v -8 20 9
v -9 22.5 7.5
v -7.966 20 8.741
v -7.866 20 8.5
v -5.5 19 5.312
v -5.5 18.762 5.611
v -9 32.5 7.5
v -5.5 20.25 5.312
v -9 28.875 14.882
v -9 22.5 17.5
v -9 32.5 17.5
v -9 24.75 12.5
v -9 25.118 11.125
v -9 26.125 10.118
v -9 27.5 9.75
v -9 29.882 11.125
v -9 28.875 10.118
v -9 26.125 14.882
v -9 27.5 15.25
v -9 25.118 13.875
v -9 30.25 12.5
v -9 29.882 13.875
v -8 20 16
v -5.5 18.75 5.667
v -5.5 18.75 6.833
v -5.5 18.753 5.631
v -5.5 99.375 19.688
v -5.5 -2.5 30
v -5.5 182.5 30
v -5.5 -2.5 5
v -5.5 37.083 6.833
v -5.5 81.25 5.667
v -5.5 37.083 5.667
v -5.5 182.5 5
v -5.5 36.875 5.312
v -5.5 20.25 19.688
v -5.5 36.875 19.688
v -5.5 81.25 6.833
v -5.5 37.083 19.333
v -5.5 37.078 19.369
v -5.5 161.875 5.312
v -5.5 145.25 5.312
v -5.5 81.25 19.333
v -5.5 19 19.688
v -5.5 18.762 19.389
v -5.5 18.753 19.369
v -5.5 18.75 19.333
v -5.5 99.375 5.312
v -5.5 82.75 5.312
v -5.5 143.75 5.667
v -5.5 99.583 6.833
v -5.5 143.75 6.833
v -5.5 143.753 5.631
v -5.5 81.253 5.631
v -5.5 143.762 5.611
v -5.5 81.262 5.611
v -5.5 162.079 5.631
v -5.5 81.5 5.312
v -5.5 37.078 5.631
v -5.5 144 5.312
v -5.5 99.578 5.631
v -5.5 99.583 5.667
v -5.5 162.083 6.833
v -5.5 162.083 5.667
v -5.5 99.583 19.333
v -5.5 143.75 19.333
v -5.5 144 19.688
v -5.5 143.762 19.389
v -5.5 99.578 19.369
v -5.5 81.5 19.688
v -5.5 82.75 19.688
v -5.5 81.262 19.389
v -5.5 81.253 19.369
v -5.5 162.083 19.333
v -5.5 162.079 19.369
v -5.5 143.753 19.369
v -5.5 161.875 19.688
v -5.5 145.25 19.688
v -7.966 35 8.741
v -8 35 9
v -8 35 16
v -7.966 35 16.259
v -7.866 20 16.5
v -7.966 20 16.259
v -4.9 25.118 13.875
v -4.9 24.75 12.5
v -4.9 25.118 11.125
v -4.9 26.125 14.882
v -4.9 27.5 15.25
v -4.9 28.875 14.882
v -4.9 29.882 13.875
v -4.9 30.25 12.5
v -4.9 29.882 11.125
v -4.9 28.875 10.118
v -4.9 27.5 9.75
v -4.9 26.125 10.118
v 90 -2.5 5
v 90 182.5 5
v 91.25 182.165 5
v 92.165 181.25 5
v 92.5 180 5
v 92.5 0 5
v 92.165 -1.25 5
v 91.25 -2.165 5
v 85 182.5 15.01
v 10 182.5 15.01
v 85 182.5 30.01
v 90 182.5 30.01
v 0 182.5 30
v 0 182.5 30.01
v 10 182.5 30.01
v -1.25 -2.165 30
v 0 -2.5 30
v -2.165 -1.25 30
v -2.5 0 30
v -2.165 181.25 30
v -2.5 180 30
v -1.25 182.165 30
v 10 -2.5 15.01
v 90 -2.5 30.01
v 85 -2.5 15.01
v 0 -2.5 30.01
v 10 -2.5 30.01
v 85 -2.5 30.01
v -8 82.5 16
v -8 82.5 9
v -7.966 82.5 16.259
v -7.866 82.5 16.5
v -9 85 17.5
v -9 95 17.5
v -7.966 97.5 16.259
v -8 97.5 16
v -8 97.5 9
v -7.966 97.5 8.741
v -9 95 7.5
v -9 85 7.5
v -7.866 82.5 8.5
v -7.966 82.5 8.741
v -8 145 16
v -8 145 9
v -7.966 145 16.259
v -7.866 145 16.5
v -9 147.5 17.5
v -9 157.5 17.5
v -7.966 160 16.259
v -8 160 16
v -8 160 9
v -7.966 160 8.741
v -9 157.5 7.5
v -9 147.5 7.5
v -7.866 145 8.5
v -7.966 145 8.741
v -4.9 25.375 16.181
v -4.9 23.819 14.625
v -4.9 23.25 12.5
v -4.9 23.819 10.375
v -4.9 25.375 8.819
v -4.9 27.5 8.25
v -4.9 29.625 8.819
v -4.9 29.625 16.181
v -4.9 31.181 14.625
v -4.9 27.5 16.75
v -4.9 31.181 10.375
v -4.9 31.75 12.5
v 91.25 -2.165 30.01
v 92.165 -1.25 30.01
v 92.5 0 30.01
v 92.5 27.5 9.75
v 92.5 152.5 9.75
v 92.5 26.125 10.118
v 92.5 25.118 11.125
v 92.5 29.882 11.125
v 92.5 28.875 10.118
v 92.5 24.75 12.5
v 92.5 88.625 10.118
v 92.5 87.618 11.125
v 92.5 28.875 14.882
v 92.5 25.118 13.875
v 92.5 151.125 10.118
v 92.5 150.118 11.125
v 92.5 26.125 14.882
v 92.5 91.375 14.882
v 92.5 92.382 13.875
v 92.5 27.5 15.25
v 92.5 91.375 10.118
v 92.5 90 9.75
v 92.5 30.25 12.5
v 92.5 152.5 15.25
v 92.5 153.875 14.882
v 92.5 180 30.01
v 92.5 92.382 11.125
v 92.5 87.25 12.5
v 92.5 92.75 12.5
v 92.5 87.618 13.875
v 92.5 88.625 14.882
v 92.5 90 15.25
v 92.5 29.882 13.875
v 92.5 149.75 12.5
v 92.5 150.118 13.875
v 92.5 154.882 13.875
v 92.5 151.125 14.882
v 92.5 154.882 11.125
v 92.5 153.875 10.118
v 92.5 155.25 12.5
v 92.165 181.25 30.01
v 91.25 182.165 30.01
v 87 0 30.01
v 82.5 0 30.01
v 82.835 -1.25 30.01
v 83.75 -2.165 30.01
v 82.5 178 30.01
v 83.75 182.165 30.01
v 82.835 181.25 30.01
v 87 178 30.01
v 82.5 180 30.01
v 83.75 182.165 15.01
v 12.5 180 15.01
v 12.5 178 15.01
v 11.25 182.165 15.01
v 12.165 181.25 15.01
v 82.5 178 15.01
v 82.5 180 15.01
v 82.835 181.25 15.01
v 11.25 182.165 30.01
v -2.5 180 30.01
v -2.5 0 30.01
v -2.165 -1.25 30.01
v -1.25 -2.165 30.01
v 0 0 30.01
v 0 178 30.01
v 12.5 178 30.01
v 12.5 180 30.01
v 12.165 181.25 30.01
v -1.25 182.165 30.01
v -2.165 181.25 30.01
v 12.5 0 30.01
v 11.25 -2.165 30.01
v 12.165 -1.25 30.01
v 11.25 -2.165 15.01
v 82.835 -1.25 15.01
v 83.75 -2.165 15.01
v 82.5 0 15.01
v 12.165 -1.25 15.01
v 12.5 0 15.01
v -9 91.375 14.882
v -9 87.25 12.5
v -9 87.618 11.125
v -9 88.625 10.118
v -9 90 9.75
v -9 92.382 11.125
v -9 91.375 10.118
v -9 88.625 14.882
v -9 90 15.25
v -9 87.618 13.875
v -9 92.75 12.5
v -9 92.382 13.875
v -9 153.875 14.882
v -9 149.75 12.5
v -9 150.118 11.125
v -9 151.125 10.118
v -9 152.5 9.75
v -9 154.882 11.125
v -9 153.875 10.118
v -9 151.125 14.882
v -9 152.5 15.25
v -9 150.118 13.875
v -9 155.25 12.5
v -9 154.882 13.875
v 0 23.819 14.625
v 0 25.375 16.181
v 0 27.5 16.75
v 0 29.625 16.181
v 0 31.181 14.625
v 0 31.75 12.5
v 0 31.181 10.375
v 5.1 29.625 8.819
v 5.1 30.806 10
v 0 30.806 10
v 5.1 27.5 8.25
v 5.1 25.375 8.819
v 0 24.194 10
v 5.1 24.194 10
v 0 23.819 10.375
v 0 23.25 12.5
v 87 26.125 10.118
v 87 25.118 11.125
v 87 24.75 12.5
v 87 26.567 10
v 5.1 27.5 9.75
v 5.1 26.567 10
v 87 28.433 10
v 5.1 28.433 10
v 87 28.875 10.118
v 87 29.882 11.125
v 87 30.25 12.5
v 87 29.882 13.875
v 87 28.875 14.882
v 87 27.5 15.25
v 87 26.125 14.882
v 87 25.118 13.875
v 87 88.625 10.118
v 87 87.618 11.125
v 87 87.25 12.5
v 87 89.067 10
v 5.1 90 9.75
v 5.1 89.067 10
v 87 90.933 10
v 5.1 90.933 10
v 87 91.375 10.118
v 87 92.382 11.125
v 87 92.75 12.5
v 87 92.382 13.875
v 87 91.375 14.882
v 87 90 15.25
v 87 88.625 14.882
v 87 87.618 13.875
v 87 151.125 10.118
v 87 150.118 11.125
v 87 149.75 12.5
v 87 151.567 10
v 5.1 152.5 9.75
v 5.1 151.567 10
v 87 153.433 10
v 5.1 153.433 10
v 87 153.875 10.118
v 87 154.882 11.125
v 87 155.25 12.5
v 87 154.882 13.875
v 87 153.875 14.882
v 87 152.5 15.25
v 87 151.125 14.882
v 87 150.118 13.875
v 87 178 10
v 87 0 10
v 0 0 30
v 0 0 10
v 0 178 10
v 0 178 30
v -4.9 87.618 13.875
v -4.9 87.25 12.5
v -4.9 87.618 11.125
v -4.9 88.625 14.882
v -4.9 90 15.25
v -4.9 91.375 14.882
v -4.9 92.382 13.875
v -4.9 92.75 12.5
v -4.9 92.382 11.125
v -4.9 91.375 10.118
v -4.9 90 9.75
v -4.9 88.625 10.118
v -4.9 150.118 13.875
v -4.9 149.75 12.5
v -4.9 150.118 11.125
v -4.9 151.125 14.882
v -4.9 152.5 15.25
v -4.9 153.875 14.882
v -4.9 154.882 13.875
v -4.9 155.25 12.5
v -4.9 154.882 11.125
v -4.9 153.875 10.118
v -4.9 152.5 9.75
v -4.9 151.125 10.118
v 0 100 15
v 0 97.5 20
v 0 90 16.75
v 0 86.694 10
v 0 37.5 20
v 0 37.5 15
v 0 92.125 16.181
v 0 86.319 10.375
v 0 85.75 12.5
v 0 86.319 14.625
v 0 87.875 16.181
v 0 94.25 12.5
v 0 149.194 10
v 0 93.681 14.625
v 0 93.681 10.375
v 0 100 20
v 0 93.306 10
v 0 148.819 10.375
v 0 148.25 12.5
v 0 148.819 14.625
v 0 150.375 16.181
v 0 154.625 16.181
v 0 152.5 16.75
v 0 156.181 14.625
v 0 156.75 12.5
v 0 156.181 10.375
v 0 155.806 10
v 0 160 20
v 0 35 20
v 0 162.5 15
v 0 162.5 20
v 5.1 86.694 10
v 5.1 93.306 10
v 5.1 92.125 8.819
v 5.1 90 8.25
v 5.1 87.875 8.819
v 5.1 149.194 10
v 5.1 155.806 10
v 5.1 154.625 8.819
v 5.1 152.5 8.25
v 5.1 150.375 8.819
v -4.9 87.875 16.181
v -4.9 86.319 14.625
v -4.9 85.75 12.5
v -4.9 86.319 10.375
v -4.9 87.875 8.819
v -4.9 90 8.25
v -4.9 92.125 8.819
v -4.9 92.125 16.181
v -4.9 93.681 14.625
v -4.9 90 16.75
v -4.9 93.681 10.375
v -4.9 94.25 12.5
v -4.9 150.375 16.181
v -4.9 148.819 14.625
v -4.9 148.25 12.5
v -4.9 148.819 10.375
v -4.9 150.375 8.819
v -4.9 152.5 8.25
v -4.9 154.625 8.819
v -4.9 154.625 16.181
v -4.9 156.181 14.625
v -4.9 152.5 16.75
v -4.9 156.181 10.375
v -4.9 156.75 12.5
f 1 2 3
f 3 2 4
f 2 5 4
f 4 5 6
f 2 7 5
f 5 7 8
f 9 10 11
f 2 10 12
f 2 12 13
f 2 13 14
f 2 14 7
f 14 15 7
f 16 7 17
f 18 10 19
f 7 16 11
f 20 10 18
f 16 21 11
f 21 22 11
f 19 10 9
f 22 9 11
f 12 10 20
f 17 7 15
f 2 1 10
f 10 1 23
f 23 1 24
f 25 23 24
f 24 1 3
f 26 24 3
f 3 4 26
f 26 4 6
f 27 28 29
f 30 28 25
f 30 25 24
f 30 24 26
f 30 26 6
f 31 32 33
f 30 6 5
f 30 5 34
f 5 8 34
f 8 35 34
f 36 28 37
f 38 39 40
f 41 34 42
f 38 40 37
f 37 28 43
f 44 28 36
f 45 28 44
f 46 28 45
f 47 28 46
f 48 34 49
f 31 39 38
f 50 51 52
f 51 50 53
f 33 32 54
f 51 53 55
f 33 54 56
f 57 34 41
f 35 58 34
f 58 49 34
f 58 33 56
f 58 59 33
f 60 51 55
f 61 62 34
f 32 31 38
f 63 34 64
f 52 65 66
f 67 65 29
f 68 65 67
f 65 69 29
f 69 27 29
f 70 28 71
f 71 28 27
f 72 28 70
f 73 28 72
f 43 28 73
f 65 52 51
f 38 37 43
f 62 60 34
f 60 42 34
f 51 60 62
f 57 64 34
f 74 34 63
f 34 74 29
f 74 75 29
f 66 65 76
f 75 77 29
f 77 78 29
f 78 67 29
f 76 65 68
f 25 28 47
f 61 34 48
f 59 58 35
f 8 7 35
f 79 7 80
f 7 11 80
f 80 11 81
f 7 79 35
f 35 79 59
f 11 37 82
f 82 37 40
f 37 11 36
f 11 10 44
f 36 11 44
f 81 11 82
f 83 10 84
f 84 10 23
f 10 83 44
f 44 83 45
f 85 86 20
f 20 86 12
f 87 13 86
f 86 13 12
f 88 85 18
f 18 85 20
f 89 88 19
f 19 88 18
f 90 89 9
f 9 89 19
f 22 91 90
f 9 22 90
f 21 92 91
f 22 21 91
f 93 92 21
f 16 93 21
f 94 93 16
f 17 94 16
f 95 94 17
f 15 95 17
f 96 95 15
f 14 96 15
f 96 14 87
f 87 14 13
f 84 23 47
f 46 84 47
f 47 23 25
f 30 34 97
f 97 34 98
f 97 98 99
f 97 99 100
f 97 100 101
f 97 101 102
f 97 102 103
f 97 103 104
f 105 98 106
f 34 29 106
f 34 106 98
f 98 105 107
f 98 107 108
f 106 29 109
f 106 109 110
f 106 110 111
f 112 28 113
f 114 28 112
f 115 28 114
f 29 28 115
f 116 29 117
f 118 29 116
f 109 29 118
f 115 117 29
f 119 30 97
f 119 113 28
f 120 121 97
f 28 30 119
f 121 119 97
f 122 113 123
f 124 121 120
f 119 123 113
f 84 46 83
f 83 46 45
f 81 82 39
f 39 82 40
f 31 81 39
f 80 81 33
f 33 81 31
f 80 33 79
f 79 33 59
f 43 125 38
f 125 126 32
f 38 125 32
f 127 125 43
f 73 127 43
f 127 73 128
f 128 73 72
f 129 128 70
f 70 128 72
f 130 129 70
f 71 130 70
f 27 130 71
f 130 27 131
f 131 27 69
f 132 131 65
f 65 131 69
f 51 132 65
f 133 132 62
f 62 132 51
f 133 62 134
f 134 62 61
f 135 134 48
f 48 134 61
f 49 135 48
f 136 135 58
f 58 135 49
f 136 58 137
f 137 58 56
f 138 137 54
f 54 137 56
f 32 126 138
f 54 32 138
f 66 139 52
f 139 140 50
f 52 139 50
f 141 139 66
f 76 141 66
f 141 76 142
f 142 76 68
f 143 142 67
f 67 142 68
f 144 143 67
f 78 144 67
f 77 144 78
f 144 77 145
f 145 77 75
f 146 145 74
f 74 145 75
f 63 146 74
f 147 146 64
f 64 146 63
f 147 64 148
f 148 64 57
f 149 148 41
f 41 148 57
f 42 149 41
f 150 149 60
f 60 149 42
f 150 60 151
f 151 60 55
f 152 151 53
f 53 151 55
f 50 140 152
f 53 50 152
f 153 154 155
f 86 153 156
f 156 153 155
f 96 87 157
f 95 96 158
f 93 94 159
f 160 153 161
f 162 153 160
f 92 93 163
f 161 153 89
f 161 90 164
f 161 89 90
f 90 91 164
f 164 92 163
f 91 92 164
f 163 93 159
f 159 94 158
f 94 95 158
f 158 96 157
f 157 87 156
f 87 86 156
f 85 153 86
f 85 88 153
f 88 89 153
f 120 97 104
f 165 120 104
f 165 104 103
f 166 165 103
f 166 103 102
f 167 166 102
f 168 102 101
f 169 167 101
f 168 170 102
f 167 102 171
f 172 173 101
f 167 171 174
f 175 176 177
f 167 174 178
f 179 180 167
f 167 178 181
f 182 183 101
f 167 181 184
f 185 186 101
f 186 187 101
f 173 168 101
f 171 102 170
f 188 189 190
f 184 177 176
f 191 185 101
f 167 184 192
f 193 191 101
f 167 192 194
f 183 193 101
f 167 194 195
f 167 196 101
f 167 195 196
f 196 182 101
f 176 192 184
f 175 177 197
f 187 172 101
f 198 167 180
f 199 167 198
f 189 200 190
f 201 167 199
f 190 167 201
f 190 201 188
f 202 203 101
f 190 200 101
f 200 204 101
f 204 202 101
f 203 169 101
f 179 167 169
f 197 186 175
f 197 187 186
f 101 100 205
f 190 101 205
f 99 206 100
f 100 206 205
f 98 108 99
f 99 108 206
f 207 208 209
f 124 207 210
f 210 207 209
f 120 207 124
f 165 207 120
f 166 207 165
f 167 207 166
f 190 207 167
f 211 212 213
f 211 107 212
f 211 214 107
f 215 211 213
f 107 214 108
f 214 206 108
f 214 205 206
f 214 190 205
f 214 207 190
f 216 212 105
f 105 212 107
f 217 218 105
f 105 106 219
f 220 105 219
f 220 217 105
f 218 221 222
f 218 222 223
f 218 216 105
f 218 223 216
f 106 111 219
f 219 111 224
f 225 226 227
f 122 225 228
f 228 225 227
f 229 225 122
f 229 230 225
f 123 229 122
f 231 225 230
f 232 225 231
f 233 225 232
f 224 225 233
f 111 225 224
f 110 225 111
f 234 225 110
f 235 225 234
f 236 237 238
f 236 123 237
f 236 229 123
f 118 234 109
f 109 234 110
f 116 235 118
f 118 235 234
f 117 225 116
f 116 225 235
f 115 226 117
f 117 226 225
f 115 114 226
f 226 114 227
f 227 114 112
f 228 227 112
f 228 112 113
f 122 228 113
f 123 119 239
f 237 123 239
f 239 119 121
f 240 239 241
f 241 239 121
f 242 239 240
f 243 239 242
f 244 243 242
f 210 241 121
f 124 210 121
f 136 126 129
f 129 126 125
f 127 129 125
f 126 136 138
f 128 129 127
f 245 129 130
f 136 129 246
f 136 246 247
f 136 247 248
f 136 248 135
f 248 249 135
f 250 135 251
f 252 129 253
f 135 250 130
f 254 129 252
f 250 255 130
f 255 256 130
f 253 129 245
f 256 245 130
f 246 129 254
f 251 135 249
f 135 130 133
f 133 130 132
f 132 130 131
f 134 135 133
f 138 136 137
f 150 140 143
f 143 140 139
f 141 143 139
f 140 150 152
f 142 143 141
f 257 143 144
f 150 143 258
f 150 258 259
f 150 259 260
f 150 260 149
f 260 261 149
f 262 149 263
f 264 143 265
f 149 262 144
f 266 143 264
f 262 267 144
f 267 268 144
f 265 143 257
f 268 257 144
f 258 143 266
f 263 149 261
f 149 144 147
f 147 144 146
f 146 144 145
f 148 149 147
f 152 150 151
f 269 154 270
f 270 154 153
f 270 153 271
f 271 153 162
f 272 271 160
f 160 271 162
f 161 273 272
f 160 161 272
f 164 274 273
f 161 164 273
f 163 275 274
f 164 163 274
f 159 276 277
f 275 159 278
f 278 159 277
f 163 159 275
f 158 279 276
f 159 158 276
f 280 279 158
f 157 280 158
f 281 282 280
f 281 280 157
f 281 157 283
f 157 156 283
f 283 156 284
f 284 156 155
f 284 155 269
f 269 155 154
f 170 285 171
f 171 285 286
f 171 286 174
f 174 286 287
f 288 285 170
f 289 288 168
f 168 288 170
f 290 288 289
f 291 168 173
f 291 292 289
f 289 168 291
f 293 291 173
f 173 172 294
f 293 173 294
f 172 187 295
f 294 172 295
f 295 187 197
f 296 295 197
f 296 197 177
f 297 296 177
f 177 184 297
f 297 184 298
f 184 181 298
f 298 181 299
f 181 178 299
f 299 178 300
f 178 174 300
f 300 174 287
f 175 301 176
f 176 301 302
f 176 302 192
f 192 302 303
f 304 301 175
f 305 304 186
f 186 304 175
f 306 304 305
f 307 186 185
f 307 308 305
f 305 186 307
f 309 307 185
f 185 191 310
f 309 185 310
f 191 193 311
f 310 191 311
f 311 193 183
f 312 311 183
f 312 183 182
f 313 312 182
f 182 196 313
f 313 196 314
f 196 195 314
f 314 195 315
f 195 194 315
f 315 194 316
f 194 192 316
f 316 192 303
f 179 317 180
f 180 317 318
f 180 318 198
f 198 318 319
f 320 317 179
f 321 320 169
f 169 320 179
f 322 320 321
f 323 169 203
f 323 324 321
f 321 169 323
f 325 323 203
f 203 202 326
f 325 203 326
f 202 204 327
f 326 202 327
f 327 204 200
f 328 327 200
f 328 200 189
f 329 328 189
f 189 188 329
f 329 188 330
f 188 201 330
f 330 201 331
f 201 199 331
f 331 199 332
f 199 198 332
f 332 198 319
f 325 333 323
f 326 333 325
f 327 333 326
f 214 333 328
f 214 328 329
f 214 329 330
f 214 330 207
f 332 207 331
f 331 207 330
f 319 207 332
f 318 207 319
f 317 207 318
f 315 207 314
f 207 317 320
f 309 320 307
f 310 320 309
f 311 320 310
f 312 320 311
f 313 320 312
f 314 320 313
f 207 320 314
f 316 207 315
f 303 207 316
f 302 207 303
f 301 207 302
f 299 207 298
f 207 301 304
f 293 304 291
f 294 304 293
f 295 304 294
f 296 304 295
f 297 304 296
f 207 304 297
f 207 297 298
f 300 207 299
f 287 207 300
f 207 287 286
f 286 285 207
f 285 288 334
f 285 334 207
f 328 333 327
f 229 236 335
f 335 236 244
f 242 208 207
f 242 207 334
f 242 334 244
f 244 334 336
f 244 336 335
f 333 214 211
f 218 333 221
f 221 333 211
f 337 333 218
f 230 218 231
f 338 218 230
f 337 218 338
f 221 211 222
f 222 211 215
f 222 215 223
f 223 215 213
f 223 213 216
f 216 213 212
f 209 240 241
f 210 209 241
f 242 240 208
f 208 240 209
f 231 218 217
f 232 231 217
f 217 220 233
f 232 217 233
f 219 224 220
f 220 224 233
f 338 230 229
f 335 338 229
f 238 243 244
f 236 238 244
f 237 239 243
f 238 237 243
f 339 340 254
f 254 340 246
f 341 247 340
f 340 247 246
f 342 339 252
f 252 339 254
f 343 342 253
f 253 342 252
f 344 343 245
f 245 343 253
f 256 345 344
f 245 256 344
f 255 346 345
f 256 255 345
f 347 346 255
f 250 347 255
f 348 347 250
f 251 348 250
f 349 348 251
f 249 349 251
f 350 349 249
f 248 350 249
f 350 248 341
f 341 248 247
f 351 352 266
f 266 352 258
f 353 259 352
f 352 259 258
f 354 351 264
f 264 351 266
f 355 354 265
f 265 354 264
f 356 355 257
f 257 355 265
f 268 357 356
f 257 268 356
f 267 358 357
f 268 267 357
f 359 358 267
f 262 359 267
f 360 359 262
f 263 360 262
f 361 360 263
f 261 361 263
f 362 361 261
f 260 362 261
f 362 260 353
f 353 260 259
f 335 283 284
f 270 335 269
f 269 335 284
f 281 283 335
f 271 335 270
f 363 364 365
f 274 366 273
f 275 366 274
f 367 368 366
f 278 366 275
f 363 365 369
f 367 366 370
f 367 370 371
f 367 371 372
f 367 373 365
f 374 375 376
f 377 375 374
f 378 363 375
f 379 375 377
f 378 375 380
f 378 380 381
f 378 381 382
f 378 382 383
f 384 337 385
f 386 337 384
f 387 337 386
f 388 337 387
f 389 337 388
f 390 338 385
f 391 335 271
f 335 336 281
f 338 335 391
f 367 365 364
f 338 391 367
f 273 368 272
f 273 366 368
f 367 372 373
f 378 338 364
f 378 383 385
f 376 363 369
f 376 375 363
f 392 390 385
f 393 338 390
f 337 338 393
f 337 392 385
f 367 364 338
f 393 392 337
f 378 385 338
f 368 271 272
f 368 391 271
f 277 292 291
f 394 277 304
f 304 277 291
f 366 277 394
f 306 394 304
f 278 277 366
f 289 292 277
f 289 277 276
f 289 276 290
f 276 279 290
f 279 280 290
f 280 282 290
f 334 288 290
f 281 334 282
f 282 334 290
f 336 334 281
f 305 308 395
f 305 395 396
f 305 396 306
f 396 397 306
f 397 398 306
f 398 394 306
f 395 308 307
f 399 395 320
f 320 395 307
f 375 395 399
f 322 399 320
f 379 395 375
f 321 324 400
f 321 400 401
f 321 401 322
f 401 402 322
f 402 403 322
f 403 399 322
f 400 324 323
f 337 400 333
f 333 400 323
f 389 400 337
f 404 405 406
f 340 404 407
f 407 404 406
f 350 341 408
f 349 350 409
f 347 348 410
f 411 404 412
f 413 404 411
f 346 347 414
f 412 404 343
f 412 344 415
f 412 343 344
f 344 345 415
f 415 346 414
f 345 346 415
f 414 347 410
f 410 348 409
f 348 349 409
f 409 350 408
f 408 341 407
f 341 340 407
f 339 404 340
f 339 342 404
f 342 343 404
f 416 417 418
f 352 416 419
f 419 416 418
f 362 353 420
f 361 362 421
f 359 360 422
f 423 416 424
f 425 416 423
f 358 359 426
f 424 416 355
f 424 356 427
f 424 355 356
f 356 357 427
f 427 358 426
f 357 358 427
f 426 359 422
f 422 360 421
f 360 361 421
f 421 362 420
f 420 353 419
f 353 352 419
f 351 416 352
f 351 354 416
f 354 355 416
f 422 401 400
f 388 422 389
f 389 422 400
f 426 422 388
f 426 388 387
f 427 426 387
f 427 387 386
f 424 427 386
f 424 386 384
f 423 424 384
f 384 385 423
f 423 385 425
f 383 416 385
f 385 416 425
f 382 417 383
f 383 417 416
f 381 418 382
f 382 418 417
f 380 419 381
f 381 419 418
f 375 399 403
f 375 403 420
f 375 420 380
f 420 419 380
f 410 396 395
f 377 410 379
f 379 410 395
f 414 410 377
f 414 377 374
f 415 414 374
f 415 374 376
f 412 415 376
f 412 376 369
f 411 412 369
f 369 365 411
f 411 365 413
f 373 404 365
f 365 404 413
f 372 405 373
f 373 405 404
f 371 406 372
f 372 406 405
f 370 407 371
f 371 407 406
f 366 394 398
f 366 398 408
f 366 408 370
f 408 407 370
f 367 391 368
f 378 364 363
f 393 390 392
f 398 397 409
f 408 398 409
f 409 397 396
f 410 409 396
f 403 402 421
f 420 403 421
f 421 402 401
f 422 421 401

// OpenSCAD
/*
	3D Power Supply Mount
	by Free Beachler of Terawatt Industries

This work is licensed under the Creative Commons Attribution-ShareAlike 3.0 Unported License. To view a copy of this license, visit http://creativecommons.org/licenses/by-sa/3.0/.
*/

//Round corner diameter
round_corner_diameter = 8;

m5_diameter = 5.5;
m5_nut_diameter = 9.5;
m5_cap_diameter = 8.5;
m4_diameter = 4.5;
m4_nut_diameter = 7.5;
m3_diameter = 3.2;
m3_nut_diameter = 5.3;

power_mount();
// power supply
//% color([0.1, 0.9, 0]) translate([0, 2.5, 10]) cube([85, 175, 70]);

module power_mount() {
	difference() {
		union() {
			platform();
			translate([0, 25 + 5 + 2.5, 17]) rotate([0, 0, 90]) mount_arm_m3(0, 0, 0, 0.1, 2);
			translate([0, 87.5 + 5 + 2.5, 17]) rotate([0, 0, 90]) mount_arm_m3(0, 0, 0, 0.1, 2);
			translate([0, 150 + 5 + 2.5, 17]) rotate([0, 0, 90]) mount_arm_m3(0, 0, 0, 0.1, 2);
		}
		translate([0, 2.5, 2.5]) mount_holes();
	}
}

module platform() {
	difference() {
		// round some corners
		translate([0, 0, 5]) minkowski() {
			difference() {
				cube([90, 180, 25]);
				translate([10, -5.1, 10]) cube([75, 205.2, 70]);
			}
			cylinder(r=2.5, h=0.01, center=false, $fn=12);
			//	rotate([0, 90, 0]) cylinder(r=2.5, h=0.01, center=false, $fn=12);
		}
		translate([0, 0, 10]) cube([87, 178, 75]);
	}
	// square the mount plate area
	translate([-5.5, -2.5, 5]) cube([5.5, 185, 25]);
	//	translate([-9.5, 5, 0]) cube([97.5, 185, 5]);
}

module mount_holes() {
	for (i = [25, 87.5, 150]) {
		rotate([0, 90, 0]) translate([-10, i, -20]) cylinder(r=m5_diameter / 2, h=150, center = false, $fn=12);
		rotate([0, 90, 0]) translate([-10, i, -4.9]) cylinder(r=m5_cap_diameter / 2, h=10, center = false, $fn=12);
	}
}


module mount_arm_m3(h, w, d, tol, wt) {
	for (z = [d - wt - 5 + 3.5]) {
		// trapezoid block
		difference() { 
			hull() {
				hull() {
					translate([h - 10, w + 4, z - 6]) cube([10, 5, 10], center = false);
					translate([h + 5, w, z + 6.5]) rotate([0, 90, 90]) cube([15, 15 + wt * 2, 5], center = false);
				}
				// rounded block
				translate([h - 12.5, w + wt + 1.5 + 3.5, z + 2.5]) rotate([90, 0, 90]) cylinder(r = 1, h = 15, center = false, $fn = 24);
				translate([h - 12.5, w + wt + 1.5 + 3.5, z - 7 + 2.5]) rotate([90, 0, 90]) cylinder(r = 1, h = 15, center = false, $fn = 24);
			}
			// M3 mount hole
			translate([h - 5, w * 2, z - 3.5 + 2.5]) rotate([90, 0, 0]) cylinder(r = 1.6, h = d * 2, center = false, $fn = 24);
		}
	}
}
